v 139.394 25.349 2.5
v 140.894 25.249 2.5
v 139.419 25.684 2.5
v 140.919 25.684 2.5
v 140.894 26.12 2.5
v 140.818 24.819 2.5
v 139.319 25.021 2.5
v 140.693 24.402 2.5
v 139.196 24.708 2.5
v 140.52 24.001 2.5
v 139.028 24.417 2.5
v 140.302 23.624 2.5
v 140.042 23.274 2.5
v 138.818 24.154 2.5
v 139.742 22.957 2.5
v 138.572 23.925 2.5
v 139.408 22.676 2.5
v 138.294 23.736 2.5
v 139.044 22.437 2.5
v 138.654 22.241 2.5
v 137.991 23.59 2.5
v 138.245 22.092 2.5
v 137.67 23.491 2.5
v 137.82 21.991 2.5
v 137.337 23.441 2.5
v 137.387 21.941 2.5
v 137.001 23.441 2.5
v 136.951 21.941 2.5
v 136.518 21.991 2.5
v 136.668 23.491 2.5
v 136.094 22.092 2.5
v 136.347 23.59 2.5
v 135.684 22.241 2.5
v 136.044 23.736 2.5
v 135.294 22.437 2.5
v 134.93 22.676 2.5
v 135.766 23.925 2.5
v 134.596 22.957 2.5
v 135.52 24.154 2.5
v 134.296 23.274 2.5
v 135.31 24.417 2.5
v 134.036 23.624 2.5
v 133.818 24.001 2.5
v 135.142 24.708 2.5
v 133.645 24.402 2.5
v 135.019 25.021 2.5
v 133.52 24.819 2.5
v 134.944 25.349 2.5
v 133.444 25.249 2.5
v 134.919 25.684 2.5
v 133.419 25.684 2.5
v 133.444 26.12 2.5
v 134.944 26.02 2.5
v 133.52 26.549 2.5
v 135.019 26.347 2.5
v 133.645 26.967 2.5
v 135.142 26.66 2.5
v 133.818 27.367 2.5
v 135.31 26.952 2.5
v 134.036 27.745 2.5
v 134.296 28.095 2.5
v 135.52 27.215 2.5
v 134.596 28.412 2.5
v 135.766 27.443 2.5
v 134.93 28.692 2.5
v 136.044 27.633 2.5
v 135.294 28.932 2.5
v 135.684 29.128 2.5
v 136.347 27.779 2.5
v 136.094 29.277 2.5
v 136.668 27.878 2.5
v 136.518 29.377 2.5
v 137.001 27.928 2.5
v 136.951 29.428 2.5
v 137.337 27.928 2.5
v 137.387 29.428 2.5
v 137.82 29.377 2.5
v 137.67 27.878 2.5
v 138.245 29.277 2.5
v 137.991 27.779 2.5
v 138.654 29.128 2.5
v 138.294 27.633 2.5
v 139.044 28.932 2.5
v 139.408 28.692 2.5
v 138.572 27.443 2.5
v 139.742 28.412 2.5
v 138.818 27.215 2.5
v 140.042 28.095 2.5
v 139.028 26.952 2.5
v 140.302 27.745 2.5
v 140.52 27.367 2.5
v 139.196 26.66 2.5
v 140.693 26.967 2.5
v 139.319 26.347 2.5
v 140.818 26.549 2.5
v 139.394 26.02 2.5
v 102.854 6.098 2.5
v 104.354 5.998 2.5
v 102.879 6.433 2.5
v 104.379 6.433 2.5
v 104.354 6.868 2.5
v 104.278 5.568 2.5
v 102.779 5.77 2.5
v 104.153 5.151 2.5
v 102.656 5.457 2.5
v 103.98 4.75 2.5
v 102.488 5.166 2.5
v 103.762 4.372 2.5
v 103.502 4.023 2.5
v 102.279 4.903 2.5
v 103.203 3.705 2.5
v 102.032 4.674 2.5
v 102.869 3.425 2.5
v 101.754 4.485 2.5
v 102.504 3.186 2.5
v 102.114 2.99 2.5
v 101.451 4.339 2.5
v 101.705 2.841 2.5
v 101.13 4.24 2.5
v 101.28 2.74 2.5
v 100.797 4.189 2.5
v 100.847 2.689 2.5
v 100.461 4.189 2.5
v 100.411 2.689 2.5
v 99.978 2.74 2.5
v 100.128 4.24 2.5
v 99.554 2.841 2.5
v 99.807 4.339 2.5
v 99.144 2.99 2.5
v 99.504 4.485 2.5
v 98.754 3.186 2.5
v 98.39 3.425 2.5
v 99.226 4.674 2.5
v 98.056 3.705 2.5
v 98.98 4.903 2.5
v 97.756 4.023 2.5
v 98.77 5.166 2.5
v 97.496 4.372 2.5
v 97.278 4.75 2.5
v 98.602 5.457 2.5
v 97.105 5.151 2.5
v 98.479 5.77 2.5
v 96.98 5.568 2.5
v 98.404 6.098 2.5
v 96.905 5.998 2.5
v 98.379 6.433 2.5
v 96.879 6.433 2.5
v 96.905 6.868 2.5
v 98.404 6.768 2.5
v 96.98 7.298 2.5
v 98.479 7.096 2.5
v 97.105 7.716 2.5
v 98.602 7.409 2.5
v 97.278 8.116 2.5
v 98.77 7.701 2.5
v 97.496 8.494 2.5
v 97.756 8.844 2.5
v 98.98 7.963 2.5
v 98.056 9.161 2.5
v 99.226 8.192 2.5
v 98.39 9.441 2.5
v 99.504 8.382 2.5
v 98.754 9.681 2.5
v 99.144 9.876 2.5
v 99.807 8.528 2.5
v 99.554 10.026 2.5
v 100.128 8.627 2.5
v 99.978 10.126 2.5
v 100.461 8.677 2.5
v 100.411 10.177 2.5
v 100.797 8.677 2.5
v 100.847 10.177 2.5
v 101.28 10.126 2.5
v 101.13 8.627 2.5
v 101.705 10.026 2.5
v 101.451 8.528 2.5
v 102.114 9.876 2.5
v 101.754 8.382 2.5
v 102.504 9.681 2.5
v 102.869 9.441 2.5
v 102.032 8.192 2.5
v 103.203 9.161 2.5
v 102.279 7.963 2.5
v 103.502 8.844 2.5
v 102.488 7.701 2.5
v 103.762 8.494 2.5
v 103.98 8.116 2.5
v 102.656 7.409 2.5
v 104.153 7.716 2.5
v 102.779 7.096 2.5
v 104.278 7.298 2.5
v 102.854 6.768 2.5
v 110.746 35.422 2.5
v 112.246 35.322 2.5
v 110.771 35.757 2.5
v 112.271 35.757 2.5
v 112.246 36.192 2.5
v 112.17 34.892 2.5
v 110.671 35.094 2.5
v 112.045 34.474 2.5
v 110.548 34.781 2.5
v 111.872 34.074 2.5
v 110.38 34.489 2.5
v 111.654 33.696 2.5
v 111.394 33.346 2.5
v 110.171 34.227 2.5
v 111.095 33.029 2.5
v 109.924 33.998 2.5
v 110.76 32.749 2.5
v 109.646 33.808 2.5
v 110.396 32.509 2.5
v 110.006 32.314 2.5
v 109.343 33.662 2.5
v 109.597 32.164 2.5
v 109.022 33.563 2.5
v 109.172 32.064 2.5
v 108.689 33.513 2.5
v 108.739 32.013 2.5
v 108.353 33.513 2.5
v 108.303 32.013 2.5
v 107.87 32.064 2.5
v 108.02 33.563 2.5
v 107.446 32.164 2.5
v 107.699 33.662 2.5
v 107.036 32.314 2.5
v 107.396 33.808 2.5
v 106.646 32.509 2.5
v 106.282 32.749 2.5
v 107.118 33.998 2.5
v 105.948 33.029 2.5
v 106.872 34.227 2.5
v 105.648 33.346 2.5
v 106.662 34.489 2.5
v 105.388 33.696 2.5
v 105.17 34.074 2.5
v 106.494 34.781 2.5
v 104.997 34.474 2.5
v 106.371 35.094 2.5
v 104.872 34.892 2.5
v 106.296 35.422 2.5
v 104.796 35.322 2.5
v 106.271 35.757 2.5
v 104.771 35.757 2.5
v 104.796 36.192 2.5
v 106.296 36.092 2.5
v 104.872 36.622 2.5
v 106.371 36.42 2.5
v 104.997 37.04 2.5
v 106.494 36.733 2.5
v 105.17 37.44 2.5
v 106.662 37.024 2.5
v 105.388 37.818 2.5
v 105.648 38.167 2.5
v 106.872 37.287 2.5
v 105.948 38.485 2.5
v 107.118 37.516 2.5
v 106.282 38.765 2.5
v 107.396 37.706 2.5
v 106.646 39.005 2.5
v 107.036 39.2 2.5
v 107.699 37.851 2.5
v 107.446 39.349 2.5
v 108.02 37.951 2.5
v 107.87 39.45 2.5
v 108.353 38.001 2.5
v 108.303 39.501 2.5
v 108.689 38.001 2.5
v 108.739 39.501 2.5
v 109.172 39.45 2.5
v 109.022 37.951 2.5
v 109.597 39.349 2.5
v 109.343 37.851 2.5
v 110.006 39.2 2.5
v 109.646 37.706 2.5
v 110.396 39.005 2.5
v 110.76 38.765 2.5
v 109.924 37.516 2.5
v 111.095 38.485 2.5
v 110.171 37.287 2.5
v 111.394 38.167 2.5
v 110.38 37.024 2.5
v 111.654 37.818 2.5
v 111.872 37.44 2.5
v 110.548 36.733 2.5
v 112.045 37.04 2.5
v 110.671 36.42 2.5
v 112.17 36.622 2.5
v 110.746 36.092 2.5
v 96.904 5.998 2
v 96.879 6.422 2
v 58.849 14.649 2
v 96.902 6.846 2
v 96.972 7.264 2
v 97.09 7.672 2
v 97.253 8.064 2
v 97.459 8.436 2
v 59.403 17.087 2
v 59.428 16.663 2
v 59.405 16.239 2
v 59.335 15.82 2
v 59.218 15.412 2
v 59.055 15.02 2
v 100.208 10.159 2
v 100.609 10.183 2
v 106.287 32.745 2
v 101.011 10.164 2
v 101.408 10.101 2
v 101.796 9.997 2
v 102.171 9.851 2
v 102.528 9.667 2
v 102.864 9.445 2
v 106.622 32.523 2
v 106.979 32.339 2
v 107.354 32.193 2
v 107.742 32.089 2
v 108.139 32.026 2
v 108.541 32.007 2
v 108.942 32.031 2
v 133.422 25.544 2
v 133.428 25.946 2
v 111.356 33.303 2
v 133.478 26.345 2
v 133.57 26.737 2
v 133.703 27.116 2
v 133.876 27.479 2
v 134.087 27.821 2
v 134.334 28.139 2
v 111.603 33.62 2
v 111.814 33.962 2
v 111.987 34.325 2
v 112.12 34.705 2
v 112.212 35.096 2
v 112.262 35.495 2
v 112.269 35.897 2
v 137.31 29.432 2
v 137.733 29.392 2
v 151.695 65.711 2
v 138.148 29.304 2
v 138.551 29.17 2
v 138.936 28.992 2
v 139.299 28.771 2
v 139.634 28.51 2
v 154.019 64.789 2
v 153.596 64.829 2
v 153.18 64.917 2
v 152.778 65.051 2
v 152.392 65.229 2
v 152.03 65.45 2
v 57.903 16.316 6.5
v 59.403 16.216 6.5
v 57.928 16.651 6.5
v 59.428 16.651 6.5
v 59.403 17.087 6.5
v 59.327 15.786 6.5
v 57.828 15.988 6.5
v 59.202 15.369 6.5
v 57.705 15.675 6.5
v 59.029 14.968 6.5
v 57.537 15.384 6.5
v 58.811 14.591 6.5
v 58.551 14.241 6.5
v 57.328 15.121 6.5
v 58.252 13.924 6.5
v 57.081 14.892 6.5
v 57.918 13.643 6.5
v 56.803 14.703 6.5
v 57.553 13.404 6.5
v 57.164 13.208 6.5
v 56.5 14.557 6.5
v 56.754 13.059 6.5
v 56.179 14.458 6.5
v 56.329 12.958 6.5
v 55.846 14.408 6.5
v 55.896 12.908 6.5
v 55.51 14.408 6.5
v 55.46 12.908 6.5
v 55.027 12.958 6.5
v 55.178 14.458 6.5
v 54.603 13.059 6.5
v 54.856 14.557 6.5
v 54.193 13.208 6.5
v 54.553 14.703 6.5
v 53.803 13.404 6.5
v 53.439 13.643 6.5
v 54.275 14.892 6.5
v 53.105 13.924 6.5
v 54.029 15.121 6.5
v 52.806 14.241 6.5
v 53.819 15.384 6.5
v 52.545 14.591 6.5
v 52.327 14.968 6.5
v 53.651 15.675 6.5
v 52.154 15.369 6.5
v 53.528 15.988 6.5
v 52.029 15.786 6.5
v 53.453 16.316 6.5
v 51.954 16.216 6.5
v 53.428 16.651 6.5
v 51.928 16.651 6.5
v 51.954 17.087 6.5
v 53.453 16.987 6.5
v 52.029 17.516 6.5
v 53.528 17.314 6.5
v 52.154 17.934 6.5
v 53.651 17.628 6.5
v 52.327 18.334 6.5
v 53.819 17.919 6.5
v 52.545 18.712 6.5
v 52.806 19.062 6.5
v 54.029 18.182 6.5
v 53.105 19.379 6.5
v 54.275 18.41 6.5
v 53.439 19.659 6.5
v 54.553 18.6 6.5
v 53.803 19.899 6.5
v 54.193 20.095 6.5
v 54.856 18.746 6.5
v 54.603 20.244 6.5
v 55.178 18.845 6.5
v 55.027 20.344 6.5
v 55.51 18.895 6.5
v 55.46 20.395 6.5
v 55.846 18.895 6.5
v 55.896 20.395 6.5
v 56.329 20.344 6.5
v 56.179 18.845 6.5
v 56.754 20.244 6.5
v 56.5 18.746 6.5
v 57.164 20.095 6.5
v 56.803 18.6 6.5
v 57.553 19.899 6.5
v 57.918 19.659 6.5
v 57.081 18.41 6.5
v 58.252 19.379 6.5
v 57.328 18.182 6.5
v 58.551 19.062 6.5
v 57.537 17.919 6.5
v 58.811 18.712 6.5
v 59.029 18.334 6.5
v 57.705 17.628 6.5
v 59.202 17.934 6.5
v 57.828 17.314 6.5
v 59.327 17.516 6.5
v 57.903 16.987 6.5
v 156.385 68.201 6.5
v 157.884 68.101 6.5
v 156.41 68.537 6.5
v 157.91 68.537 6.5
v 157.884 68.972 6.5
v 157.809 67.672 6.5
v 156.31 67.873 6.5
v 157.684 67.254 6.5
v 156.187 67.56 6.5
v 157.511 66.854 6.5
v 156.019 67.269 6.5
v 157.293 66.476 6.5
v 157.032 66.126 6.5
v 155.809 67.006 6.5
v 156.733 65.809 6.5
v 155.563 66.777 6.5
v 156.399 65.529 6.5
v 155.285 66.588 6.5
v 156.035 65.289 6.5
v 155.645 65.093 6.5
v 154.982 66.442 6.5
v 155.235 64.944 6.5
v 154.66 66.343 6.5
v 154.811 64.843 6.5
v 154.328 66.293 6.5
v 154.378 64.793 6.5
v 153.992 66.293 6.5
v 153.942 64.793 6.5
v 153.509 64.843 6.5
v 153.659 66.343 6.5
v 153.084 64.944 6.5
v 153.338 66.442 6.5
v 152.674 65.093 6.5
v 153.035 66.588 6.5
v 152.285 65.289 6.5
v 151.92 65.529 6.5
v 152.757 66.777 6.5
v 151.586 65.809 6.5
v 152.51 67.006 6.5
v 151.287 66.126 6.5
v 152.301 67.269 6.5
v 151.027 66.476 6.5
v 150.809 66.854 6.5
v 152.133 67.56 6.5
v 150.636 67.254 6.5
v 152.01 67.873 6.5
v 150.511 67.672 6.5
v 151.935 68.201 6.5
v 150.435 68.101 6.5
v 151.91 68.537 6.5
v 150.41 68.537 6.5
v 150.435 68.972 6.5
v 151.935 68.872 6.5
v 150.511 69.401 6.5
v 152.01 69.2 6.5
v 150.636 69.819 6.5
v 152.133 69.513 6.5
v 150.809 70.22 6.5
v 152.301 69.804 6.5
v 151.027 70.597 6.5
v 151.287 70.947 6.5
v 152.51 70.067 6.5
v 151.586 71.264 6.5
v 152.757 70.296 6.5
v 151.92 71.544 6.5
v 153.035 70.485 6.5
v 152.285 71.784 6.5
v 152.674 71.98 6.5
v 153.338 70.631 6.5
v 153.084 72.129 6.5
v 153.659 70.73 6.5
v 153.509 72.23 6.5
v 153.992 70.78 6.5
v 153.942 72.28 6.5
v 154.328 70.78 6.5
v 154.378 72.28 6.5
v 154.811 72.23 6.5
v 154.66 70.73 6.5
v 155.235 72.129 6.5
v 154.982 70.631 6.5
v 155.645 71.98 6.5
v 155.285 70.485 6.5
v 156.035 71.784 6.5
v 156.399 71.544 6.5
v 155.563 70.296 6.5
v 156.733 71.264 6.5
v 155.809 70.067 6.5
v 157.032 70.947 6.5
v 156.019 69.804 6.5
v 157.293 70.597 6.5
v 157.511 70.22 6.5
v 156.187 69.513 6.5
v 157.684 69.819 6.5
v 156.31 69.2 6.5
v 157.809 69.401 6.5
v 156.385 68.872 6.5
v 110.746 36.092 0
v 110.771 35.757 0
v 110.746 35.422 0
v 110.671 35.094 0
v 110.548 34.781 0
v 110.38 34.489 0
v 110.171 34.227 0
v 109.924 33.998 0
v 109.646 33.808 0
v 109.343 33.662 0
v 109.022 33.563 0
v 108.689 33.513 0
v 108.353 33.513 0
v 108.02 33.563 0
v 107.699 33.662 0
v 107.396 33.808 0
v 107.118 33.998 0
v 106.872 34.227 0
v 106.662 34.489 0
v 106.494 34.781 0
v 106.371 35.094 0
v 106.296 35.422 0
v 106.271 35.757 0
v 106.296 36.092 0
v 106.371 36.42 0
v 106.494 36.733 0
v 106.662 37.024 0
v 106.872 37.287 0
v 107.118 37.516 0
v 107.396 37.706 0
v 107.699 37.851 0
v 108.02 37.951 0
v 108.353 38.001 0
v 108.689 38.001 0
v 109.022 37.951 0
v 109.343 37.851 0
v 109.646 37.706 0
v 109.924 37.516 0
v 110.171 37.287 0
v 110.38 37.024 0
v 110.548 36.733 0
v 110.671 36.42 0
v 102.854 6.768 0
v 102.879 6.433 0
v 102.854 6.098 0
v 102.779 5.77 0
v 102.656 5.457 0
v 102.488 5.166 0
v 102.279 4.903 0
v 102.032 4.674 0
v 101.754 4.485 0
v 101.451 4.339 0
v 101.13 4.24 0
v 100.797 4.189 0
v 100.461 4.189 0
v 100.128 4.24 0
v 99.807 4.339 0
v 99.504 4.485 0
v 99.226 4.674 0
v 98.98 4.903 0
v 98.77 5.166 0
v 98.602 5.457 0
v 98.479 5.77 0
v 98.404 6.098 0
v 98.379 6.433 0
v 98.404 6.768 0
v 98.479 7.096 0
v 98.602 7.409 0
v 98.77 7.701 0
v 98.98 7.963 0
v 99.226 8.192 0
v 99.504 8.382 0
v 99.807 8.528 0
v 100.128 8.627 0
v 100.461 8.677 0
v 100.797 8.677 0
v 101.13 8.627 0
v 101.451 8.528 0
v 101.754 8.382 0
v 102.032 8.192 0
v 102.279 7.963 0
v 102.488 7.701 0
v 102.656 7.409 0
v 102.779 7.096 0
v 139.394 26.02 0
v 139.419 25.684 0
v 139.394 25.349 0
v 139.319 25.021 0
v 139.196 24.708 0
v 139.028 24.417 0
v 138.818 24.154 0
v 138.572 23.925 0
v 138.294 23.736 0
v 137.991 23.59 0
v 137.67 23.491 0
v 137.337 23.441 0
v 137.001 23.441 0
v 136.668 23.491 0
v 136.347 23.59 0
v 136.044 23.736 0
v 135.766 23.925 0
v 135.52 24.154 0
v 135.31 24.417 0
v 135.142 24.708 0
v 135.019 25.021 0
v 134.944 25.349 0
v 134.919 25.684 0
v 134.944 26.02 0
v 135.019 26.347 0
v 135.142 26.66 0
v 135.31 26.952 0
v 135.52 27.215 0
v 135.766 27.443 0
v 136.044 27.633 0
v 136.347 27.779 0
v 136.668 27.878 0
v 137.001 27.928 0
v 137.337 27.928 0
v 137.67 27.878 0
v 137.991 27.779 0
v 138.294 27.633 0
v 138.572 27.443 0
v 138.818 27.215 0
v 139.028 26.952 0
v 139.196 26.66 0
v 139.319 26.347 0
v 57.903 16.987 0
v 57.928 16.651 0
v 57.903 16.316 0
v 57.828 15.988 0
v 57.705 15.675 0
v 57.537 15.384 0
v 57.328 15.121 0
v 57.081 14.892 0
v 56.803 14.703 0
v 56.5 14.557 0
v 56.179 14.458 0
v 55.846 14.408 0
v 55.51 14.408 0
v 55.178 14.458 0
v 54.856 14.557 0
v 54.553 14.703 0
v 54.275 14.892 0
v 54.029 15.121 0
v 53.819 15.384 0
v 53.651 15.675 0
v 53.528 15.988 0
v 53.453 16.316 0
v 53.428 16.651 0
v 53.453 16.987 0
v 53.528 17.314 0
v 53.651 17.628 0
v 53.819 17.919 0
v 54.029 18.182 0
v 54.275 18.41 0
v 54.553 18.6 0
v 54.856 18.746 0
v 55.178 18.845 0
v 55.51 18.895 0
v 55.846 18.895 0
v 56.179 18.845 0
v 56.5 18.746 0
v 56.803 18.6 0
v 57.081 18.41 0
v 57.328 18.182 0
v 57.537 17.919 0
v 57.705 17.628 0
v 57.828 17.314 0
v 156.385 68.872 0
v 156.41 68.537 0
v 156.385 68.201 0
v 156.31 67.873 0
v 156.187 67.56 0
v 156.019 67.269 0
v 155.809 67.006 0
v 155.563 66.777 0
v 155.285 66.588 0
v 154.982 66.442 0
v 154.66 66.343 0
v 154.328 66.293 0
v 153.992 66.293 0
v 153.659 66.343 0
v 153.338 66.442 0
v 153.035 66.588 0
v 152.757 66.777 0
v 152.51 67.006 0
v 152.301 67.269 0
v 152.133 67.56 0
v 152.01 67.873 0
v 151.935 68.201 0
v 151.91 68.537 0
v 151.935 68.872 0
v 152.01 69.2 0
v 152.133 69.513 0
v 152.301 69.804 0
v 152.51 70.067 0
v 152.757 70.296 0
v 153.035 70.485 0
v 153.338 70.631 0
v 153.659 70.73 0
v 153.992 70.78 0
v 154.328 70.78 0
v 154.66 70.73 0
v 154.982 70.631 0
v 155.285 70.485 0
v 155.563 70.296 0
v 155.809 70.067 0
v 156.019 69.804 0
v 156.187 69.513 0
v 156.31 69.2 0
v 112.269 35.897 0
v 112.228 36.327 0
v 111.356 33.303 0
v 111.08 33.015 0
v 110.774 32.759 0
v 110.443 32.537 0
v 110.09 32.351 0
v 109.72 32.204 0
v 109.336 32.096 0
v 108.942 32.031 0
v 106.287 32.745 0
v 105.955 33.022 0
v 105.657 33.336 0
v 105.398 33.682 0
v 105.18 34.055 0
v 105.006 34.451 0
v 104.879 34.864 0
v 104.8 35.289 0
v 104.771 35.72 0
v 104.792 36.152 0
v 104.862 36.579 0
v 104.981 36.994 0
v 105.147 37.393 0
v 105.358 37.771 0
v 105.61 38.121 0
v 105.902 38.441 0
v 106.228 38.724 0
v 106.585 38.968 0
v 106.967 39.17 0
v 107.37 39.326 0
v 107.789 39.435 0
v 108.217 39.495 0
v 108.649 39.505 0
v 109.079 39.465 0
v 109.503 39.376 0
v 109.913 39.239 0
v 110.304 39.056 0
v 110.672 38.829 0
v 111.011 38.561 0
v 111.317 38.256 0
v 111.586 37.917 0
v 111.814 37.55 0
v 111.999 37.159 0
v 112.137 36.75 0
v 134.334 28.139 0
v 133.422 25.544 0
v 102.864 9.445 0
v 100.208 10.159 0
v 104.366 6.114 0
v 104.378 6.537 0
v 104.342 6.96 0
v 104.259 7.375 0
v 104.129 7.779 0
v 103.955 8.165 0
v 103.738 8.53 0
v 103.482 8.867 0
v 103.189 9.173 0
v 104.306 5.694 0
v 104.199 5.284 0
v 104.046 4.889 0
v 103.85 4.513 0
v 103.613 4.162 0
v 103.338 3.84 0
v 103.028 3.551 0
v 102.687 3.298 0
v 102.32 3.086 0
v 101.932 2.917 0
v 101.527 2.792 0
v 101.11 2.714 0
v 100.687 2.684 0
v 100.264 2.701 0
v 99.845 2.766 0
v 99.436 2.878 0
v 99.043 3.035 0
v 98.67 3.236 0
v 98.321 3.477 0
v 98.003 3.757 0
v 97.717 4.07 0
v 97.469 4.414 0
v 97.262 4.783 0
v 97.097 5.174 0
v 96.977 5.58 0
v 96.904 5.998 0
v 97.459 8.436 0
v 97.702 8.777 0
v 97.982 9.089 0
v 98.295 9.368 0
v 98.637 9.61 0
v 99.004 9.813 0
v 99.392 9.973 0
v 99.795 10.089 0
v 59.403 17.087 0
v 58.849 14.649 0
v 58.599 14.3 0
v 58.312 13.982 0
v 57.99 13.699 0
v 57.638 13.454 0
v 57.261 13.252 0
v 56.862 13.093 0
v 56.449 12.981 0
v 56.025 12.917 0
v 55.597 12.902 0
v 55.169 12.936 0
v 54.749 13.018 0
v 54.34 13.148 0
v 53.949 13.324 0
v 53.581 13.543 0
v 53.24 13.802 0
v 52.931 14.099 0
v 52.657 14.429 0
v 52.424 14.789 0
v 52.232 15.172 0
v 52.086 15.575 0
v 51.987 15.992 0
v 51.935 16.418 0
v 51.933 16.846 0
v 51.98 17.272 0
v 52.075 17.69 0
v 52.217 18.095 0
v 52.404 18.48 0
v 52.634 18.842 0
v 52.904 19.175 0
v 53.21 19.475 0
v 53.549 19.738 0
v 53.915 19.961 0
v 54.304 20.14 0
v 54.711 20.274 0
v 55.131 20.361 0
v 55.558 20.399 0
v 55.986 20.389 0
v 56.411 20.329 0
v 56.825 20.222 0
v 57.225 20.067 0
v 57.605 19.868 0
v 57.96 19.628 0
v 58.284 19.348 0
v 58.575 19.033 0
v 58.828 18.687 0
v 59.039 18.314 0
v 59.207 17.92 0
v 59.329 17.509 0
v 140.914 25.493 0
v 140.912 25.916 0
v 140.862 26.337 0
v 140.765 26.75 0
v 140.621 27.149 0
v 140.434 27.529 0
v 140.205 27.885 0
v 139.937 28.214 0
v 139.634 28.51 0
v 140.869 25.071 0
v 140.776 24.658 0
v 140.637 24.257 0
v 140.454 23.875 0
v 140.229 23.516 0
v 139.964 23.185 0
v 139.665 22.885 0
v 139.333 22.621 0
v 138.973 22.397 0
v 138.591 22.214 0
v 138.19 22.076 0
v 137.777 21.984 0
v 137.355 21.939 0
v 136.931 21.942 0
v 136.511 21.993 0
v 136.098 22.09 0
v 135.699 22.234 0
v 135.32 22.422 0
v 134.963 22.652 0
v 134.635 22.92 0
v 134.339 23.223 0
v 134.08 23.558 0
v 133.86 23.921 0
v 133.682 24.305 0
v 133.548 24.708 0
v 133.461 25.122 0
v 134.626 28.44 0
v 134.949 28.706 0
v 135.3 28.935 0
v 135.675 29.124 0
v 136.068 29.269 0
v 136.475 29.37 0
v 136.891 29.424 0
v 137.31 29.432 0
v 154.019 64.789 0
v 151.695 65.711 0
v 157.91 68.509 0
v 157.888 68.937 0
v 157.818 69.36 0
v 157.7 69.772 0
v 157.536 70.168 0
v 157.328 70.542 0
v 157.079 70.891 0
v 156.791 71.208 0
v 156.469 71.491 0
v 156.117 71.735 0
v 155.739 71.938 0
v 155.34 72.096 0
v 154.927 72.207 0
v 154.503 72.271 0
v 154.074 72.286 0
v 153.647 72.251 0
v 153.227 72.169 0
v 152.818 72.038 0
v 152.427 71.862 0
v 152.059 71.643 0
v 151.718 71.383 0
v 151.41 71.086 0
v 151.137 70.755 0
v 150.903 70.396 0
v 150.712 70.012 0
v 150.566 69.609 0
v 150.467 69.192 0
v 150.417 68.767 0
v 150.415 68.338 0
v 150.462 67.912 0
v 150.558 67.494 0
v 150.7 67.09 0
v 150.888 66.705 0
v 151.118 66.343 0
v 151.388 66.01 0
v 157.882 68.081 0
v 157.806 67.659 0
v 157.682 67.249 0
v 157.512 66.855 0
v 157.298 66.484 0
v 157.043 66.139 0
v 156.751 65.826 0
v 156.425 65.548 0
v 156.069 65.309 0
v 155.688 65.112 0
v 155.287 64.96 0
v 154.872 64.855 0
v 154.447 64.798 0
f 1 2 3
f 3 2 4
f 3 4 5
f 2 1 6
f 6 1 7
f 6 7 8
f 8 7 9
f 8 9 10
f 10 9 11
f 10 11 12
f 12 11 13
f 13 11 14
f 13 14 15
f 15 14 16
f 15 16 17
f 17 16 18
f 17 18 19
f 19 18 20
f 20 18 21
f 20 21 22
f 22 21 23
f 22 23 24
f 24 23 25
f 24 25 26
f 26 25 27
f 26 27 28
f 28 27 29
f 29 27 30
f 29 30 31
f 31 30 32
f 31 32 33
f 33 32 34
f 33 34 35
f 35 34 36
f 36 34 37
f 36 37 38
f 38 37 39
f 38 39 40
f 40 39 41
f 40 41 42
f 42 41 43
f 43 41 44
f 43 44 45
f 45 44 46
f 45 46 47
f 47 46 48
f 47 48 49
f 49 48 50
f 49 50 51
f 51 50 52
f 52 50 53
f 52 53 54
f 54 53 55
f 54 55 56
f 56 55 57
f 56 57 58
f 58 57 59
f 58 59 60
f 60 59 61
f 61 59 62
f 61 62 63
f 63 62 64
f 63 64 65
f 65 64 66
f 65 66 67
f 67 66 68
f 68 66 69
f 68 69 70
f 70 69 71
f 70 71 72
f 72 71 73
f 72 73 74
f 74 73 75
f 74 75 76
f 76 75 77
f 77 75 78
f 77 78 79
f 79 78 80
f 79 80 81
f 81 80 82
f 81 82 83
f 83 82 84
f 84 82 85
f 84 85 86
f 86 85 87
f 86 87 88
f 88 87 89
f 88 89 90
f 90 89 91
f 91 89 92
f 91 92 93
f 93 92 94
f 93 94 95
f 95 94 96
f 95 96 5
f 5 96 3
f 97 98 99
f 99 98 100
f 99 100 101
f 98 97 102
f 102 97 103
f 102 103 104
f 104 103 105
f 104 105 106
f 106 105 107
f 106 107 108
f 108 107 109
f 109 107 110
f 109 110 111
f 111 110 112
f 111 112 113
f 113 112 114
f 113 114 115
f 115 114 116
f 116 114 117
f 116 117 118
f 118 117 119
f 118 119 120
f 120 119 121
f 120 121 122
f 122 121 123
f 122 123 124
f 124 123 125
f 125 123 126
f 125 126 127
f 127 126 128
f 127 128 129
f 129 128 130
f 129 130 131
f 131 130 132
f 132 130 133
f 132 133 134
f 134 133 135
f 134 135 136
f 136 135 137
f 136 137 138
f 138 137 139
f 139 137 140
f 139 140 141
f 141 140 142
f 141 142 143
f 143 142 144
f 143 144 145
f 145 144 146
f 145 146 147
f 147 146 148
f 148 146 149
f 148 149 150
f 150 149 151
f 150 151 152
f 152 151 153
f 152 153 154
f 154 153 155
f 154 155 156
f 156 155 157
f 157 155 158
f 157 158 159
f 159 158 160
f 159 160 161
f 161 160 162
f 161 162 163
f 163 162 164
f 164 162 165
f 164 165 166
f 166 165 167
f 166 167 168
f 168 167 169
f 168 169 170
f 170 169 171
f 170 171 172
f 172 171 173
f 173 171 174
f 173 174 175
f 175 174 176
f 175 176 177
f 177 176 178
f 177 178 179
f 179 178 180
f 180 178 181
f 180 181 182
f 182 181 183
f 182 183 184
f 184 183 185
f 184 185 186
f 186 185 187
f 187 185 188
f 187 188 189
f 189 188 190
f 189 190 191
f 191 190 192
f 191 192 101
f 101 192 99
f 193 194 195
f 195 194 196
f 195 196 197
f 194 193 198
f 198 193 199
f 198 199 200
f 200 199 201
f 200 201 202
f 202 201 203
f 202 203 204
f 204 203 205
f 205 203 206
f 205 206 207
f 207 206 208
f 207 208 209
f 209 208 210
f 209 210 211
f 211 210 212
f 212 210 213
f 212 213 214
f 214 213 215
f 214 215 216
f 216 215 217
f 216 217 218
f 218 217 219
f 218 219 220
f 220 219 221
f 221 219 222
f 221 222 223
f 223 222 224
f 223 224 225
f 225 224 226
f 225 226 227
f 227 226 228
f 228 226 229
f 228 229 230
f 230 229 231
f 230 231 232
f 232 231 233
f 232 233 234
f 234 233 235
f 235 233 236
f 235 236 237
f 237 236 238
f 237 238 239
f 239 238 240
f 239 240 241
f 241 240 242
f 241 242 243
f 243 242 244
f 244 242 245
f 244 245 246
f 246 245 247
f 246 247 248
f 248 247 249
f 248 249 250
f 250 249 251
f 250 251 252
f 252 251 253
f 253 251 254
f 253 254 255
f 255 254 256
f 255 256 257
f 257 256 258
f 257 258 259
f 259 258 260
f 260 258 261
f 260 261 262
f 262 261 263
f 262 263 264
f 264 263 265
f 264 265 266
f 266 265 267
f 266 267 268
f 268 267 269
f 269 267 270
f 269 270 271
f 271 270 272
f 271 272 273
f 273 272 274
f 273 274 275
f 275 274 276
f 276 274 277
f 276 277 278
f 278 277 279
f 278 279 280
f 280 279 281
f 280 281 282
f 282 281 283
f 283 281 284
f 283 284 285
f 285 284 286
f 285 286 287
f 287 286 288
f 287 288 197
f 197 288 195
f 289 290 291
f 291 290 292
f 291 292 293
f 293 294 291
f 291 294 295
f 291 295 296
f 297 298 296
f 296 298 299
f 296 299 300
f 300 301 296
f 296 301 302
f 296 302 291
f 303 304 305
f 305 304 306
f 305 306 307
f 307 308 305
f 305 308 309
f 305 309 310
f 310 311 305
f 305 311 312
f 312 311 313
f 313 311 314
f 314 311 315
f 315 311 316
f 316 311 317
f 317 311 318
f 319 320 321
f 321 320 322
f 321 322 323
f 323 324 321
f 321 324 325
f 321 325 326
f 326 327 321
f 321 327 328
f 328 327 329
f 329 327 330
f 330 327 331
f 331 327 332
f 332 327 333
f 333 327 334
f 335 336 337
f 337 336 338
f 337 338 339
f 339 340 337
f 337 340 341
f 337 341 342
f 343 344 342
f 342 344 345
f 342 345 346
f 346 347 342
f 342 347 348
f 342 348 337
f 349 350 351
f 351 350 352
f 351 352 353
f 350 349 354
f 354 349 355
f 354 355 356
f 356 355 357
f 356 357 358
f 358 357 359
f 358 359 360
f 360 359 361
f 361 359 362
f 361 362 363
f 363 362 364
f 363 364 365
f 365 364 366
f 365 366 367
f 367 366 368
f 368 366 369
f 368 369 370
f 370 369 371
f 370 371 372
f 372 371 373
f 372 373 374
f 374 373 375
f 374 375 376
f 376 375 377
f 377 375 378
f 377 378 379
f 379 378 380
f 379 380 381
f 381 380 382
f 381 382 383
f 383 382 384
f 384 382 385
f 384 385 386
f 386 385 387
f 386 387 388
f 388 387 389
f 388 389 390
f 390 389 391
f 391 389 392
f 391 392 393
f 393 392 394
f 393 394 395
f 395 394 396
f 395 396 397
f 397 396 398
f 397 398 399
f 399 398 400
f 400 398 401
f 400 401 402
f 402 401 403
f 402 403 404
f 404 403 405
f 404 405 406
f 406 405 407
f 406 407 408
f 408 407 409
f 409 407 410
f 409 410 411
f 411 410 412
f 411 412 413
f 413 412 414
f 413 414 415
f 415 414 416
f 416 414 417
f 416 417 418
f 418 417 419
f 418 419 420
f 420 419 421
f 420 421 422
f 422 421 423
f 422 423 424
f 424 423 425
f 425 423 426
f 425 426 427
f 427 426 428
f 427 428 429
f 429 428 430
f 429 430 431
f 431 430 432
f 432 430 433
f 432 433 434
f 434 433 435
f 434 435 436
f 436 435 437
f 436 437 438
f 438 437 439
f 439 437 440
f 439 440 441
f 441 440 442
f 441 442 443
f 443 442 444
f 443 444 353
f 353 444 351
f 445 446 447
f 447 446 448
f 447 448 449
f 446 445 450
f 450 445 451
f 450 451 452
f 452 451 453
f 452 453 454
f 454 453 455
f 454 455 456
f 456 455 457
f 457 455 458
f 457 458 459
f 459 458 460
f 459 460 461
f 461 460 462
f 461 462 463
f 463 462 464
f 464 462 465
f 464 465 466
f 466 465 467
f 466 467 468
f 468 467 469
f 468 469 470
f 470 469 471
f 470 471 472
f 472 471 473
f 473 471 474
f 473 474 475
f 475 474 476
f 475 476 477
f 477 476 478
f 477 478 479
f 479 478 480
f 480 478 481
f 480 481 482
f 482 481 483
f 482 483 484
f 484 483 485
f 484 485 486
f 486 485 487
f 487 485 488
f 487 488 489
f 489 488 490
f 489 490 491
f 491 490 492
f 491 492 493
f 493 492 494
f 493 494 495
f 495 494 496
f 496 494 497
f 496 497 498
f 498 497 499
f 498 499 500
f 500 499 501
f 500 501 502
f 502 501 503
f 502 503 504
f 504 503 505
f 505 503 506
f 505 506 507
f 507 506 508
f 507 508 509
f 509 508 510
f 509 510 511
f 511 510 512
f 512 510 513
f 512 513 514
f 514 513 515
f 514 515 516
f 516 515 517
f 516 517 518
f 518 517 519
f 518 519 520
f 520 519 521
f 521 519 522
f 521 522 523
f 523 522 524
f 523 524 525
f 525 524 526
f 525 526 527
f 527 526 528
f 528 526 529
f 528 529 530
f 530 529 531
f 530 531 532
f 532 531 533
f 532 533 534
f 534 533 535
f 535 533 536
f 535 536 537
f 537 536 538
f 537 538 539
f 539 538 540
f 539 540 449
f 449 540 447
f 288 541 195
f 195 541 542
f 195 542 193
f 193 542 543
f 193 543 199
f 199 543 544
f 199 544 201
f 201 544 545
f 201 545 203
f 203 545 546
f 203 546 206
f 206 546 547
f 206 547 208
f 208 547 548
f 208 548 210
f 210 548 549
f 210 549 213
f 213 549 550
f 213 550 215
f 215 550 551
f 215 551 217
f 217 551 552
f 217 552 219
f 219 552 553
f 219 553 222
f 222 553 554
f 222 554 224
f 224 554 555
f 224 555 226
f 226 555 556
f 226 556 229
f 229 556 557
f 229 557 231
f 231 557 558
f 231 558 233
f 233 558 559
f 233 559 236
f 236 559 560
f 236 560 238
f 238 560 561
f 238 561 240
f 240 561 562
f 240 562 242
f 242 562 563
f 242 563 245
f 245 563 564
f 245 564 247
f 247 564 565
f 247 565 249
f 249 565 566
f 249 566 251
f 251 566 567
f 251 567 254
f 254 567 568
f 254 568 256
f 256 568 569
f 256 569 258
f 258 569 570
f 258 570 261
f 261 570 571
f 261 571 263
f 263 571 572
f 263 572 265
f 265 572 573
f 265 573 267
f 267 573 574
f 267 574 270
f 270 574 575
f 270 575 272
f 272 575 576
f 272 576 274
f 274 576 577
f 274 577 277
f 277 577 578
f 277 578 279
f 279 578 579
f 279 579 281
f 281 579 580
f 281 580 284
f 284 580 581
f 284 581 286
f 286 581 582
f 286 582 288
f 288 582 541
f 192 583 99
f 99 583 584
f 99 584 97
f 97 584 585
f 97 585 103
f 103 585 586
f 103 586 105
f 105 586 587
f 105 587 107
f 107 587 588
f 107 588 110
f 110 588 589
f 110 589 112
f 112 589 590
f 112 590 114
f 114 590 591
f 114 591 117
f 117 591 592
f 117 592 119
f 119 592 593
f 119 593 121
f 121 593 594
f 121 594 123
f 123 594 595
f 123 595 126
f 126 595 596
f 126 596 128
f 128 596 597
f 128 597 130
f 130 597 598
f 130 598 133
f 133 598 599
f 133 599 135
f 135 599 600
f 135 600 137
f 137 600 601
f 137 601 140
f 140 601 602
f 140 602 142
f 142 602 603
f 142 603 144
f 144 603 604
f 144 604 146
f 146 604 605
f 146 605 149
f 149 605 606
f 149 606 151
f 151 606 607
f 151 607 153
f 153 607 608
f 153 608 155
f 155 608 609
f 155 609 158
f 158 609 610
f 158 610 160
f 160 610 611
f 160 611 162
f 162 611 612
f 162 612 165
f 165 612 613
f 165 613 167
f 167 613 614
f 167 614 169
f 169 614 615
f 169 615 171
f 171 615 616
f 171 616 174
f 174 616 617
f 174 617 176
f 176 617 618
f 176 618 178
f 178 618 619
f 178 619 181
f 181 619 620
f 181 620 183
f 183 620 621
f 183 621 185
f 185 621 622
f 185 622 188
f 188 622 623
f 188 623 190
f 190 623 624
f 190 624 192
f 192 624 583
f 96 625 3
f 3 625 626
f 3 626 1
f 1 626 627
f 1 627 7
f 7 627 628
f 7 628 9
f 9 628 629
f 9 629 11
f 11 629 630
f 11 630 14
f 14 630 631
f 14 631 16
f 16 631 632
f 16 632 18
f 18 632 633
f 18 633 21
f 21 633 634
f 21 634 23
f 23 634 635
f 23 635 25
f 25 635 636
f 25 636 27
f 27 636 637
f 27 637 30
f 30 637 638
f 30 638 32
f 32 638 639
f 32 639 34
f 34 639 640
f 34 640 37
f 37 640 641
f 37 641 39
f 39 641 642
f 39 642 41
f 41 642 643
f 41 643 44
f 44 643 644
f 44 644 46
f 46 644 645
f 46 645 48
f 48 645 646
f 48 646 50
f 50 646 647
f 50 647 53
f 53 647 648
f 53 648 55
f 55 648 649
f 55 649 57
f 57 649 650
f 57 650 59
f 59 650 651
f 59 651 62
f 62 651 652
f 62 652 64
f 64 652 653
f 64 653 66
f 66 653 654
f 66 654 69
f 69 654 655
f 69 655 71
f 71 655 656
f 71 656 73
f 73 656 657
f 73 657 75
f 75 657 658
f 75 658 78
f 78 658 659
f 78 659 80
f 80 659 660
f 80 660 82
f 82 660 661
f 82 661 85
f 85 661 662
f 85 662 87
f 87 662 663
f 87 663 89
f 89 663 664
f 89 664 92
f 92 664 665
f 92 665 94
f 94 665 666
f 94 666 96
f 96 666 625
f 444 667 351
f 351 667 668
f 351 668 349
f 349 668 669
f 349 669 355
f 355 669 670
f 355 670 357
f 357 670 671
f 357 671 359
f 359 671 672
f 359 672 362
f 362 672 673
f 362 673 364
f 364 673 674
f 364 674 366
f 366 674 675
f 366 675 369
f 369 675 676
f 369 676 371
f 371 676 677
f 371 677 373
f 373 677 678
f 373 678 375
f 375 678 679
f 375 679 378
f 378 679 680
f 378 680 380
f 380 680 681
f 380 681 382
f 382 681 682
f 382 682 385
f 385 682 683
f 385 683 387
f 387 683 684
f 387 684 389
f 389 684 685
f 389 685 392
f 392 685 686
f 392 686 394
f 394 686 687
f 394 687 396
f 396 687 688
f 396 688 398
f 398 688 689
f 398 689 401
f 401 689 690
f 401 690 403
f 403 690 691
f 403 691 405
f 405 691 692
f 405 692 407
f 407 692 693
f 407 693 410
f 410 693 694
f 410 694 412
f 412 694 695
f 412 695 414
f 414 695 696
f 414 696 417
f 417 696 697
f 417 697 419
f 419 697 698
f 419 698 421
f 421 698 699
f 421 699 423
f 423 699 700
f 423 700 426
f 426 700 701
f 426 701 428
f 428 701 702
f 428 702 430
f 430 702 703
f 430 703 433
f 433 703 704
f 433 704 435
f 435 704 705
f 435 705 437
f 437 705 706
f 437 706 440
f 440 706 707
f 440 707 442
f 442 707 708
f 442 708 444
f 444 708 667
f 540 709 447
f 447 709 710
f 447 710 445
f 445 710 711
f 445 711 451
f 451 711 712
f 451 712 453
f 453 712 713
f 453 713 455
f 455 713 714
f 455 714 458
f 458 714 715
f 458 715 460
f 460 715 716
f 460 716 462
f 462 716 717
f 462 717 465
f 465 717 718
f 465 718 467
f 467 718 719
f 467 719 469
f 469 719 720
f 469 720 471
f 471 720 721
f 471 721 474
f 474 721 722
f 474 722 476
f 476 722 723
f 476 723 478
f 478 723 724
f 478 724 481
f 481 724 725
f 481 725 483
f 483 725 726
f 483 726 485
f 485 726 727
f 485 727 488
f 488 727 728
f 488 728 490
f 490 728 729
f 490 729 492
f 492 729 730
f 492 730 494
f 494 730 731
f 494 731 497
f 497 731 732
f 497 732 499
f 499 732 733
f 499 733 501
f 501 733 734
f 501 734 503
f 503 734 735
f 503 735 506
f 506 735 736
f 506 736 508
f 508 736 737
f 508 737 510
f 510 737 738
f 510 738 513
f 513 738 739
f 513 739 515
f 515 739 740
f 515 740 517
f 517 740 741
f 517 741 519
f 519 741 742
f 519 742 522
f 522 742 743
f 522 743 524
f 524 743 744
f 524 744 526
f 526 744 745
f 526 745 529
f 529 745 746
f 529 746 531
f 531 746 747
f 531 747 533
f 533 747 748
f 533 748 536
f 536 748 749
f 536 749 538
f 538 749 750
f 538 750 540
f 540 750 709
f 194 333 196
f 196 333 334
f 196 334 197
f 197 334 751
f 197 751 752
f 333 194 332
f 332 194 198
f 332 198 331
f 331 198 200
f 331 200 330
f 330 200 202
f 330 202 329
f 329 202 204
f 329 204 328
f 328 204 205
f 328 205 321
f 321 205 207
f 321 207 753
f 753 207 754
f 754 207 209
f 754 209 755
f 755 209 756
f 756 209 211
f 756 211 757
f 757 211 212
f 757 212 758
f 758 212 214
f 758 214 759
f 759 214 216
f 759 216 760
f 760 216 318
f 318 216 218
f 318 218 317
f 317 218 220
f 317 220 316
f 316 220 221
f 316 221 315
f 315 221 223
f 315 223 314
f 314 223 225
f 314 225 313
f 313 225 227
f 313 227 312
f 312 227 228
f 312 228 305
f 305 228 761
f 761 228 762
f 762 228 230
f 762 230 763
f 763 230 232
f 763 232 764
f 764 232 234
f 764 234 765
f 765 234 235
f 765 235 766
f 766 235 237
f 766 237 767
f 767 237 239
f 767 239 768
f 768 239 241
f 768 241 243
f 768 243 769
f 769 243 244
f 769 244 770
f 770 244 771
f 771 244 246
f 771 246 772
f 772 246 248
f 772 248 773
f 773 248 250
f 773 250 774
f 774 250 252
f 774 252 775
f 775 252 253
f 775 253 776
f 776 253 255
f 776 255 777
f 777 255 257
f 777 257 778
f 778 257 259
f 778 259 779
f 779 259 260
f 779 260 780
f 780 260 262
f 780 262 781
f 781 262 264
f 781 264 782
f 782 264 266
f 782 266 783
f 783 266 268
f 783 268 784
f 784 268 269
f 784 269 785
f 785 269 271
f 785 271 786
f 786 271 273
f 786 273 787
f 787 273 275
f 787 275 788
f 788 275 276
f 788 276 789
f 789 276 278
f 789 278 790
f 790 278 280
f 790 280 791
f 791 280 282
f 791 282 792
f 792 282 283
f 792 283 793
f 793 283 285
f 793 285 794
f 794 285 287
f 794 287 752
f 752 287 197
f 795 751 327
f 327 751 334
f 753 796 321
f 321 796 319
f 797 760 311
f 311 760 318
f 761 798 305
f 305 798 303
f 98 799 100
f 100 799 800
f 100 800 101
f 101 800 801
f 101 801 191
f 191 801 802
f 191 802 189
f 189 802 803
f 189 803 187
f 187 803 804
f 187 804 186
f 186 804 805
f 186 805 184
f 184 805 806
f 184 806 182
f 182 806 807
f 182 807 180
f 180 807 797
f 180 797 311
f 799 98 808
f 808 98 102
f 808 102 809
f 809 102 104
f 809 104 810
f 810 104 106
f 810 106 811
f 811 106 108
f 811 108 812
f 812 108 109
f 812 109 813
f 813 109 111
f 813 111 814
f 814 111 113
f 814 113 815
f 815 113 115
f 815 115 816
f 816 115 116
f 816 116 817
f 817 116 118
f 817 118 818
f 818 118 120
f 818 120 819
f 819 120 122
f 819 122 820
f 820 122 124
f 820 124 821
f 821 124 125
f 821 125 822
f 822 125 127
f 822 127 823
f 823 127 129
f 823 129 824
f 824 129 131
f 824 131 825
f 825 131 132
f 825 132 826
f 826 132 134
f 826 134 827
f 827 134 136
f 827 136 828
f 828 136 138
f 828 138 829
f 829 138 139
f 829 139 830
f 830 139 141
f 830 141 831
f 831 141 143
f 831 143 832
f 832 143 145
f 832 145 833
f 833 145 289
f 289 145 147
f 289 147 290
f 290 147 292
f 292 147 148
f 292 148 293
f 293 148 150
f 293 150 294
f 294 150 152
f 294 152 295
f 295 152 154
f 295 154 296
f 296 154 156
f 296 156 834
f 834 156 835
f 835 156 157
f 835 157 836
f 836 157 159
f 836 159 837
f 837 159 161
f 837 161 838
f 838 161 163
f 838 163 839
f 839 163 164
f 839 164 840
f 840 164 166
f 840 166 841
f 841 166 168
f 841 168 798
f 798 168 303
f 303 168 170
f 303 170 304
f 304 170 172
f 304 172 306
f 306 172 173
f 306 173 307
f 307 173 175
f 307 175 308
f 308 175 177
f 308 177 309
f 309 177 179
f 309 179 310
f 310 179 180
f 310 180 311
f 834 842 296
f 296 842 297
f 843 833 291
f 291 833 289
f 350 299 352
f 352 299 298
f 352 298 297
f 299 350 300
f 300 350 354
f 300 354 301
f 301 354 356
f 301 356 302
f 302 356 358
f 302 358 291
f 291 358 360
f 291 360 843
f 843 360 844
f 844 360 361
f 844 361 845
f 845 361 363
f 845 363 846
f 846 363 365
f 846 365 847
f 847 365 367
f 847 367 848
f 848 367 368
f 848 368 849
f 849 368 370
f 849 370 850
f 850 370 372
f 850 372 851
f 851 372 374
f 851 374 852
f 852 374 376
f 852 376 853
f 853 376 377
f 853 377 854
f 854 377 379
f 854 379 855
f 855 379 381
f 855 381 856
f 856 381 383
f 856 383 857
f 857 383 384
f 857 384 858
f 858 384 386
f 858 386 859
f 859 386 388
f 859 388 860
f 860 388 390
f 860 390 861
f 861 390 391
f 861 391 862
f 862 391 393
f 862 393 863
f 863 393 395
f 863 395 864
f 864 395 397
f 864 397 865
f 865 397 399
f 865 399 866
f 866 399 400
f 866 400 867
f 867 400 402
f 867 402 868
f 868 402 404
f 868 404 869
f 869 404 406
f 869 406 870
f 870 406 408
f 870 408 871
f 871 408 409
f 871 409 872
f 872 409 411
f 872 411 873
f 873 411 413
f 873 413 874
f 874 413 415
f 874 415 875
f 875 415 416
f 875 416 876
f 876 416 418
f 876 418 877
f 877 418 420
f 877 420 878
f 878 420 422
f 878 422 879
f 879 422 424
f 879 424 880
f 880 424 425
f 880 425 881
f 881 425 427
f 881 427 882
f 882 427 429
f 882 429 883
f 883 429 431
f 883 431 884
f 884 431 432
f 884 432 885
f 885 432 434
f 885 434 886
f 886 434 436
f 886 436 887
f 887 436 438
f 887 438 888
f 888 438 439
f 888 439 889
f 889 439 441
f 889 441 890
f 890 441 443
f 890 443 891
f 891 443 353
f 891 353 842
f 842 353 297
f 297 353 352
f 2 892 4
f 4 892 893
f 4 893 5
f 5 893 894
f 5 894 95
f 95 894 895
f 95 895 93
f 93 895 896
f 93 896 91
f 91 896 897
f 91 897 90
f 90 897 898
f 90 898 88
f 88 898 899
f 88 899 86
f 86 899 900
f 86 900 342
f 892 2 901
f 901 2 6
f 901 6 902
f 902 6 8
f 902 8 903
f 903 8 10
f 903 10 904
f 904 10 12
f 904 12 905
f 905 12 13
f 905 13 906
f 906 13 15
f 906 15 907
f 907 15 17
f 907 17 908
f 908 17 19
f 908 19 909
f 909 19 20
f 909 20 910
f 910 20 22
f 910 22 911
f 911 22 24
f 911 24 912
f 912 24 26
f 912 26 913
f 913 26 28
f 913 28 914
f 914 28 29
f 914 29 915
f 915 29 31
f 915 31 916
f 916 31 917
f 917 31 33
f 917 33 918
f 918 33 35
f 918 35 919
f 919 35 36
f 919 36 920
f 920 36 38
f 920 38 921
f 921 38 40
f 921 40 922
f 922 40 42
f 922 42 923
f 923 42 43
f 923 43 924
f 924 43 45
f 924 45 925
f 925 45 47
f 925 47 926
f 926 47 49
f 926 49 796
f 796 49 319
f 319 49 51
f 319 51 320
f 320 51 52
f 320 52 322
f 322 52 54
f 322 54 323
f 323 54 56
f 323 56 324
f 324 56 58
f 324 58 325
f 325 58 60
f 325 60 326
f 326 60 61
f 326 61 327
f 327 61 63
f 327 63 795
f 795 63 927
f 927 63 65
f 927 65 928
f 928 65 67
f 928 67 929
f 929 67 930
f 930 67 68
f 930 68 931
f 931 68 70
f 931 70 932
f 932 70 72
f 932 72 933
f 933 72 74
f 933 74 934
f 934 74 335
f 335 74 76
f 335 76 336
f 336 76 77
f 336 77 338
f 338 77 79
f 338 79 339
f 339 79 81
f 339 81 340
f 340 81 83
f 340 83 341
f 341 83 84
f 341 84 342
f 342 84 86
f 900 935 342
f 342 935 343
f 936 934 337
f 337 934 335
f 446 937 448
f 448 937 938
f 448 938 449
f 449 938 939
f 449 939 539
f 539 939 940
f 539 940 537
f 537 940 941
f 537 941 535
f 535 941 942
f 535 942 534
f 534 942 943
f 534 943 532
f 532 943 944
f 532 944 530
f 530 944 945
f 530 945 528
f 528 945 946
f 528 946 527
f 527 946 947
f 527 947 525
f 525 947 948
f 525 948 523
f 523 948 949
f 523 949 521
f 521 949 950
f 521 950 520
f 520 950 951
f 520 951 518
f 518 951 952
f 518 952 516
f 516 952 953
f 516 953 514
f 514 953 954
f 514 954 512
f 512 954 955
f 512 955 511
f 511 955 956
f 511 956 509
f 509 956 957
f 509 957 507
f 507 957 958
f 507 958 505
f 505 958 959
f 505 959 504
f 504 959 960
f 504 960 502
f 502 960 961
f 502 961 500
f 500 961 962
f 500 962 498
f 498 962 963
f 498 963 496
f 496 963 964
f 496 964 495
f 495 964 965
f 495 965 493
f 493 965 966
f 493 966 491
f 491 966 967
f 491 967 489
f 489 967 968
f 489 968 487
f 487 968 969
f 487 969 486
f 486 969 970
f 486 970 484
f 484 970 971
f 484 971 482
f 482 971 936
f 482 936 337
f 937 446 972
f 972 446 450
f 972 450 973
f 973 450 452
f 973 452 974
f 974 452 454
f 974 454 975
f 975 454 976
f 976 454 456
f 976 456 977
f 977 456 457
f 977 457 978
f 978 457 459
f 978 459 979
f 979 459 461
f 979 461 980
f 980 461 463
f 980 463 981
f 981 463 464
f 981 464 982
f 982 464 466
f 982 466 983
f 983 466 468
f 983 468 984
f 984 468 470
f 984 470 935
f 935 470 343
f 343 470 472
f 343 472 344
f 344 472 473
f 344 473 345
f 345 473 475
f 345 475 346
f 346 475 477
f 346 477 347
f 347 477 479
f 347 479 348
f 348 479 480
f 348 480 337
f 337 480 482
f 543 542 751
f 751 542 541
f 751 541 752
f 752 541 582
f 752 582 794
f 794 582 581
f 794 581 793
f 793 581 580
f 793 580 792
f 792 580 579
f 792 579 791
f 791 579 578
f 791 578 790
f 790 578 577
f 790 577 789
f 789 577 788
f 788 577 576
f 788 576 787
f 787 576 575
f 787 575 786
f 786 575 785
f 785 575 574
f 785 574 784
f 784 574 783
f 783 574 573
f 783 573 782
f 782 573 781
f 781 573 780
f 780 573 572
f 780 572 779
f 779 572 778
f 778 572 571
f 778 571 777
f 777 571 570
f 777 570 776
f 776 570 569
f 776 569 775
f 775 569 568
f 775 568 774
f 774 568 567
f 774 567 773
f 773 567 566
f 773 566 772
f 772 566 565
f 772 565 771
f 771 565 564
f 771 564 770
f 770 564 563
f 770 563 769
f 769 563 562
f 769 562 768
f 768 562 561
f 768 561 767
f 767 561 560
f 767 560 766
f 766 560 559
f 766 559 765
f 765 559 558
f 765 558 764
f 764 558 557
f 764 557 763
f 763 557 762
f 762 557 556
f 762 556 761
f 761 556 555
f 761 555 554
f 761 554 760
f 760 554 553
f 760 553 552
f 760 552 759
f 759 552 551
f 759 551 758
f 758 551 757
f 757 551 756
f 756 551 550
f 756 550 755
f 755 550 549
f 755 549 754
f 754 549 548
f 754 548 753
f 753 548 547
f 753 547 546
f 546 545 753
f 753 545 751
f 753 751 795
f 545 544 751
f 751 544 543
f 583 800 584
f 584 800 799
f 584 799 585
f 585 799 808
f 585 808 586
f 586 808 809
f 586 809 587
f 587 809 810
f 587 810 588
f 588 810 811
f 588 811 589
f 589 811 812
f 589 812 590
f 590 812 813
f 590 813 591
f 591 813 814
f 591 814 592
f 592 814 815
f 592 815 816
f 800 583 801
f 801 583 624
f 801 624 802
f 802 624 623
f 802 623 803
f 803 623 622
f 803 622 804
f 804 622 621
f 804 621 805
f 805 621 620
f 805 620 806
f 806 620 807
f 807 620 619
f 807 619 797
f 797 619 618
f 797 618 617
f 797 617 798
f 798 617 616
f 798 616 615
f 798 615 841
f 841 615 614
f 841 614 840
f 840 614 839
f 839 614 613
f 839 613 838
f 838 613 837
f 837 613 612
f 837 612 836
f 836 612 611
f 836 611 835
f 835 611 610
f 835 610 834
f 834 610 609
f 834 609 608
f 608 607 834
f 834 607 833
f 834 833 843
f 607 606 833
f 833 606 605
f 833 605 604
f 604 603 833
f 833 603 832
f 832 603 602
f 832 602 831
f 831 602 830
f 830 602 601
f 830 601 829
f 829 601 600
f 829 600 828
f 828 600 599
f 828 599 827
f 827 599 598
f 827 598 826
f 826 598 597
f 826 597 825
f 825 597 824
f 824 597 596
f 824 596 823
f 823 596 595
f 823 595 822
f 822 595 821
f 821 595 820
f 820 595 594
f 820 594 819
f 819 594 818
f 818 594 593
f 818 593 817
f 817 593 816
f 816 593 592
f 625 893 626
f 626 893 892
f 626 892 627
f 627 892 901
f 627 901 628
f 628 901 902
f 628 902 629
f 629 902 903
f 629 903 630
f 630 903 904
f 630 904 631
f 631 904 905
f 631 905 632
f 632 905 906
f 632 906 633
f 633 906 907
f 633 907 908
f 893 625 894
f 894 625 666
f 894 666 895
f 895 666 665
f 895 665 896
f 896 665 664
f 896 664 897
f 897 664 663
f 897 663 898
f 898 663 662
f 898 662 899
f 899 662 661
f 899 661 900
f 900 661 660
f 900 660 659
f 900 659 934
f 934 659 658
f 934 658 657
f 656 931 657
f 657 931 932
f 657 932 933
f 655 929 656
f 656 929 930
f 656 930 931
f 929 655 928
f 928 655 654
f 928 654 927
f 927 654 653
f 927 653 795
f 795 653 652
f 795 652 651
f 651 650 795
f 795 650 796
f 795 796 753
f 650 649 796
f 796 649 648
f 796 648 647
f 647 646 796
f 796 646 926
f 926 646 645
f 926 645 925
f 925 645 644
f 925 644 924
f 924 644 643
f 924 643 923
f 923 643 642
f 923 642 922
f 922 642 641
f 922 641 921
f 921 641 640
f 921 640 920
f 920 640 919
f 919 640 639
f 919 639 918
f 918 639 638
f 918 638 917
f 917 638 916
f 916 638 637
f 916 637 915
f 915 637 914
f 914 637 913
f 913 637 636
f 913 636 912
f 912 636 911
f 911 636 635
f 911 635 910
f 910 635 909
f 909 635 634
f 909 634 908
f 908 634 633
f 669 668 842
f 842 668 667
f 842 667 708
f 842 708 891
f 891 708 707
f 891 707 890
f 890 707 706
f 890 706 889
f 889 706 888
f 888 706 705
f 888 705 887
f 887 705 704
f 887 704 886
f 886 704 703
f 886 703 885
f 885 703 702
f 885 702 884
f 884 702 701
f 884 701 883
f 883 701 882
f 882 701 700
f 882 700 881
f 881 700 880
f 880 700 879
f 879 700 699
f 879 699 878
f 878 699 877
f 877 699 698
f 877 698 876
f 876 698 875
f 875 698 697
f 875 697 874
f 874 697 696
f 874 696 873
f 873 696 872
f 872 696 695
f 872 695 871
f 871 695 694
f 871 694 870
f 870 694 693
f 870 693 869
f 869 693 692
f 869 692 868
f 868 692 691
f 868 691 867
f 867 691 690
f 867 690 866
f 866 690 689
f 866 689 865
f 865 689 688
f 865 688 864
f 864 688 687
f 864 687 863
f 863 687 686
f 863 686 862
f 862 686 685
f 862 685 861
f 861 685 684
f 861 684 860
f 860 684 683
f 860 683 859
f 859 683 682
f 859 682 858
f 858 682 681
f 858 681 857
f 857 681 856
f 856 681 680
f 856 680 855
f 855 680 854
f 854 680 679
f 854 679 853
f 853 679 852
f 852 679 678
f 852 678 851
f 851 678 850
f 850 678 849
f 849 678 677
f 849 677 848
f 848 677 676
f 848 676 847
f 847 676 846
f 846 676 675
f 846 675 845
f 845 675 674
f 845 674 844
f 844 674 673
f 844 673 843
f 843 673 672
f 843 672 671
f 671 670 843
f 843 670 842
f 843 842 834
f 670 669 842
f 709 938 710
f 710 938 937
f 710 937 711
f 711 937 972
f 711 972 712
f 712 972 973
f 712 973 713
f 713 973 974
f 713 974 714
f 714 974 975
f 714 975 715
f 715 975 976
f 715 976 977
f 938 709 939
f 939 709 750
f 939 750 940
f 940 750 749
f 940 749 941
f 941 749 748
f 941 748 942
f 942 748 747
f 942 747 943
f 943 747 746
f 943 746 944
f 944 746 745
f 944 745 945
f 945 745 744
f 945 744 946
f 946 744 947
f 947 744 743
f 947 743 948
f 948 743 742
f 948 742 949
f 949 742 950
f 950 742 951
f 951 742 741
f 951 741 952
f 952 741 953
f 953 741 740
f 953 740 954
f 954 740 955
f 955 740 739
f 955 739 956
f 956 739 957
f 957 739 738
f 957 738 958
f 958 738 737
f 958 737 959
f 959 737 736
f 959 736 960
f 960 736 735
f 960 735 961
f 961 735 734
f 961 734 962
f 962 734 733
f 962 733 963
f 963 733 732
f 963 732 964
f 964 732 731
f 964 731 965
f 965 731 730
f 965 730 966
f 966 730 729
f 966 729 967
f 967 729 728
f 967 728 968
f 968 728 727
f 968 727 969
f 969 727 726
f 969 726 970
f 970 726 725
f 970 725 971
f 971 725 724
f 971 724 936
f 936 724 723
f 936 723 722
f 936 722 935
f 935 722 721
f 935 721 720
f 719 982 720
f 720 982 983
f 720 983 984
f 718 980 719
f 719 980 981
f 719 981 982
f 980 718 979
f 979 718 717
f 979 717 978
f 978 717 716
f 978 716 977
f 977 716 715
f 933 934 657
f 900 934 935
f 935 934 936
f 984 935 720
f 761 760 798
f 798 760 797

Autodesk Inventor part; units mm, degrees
ref_plane "YZ Plane" through (0, 0, 0) normal (1, 0, 0) x (0, 1, 0)
ref_plane "XZ Plane" through (0, 0, 0) normal (0, 1, 0) x (-1, 0, 0)
ref_plane "XY Plane" through (0, 0, 0) normal (0, 0, 1) x (1, 0, 0)
sketch "Sketch1" plane through (0, 0, 0) normal (0, 0, 1) x (1, 0, 0)
  line L0 (125.272, 1.0352) -> (94.9914, -14.9276) projected
  arc A0 (97.3229, -19.3507) -> (94.9914, -14.9276) centre (89.9019, -20.4364) ccw projected
  line L1 (97.3229, -19.3507) -> (127.6037, -3.3892) projected
  line L2 (157.89, 12.5592) -> (127.6037, -3.3892) projected
  arc A1 (155.5603, 16.9833) -> (157.89, 12.5592) centre (162.9818, 18.0659) ccw projected
  line L3 (125.272, 1.0352) -> (155.5603, 16.9833) projected
  circle A2 centre (162.9818, 18.0659) radius 4.5 projected
  circle A3 centre (162.9818, 18.0659) radius 7.5 projected
  arc A4 (192.0328, 98.1186) -> (196.6808, 96.2757) centre (196.9631, 103.7704) ccw projected
  line L4 (163.264, 25.5606) -> (192.0328, 98.1186) projected
  arc A5 (167.912, 23.7177) -> (163.264, 25.5606) centre (162.9818, 18.0659) ccw projected
  line L5 (196.6808, 96.2757) -> (167.912, 23.7177) projected
  circle A6 centre (196.9631, 103.7704) radius 4.5 projected
  circle A7 centre (196.9631, 103.7704) radius 7.5 projected
  circle A8 centre (89.9019, -20.4364) radius 4.5 projected
  circle A9 centre (89.9019, -20.4364) radius 7.5 projected
  arc A10 (6.341, -4.0052) -> (7.4493, 0.8704) centre (0, 0) ccw projected
  line L6 (6.341, -4.0052) -> (82.4526, -21.3068) projected
  arc A11 (83.5609, -16.4312) -> (82.4526, -21.3068) centre (89.9019, -20.4364) ccw projected
  line L7 (83.5609, -16.4312) -> (7.4493, 0.8704) projected
  circle A12 centre (0, 0) radius 4.5 projected
  circle A13 centre (0, 0) radius 7.5 projected
  circle A14 centre (105.6859, 38.2113) radius 3.464 construction
  circle A15 centre (101.9441, 45.313) radius 4.5 construction
  arc A16 (109.4545, 45.313) -> (97.6972, 39.1186) centre (101.9441, 45.313) ccw construction
  circle A17 centre (105.6859, 38.2113) radius 4.5
  line L8 (111.3563, 33.3025) -> (155.487, 17.786)
  arc A18 (106.528, 30.7587) -> (111.3563, 33.3025) centre (105.6859, 38.2113) ccw
  arc A19 (113.1807, 38.4912) -> (101.217, 32.1881) centre (105.6859, 38.2113) ccw
  line L9 (157.3113, 22.9747) -> (113.1807, 38.4912)
  line L10 (163.0842, 20.9449) -> (163.0574, 20.9543)
  line L11 (101.217, 32.1881) -> (89.0598, -12.9838)
  line L12 (94.3708, -14.4132) -> (106.528, 30.7587)
  point P0 (0, 0)
  point P1 (97.7939, 8.8875)
  point P2 (134.3338, 28.1386)
  dimension "d0" = 9
  dimension "d2" = 7.5104
  dimension "d5" = 0.002
extrude "Extrusion1" add sketch "Sketch1" along normal blind 4 contours A0 A9 | A3 A1 | A9 L11 A19 L9 A3 L8 A18 L12 | L6 A10 L7 A9 | A3 L4 A4 L5 | A13 A10 | A4 A7
sketch "Sketch2" plane through (0, 0, 4) normal (0, 0, 1) x (1, 0, 0)
  circle A0 centre (0, 0) radius 4.5
  circle A1 centre (0, 0) radius 7.5
  circle A2 centre (196.9631, 103.7704) radius 4.5 projected
  circle A3 centre (196.9631, 103.7704) radius 4.5
  circle A4 centre (196.9631, 103.7704) radius 7.5
extrude "Extrusion2" add sketch "Sketch2" along normal blind 9
sketch "Sketch3" plane through (0, 0, 4) normal (0, 0, 1) x (1, 0, 0)
  circle A0 centre (89.9019, -20.4364) radius 4.5 projected
  circle A1 centre (89.9019, -20.4364) radius 4.5
  circle A2 centre (89.9019, -20.4364) radius 7.5
  circle A3 centre (105.6859, 38.2113) radius 4.5 projected
  circle A4 centre (105.6859, 38.2113) radius 4.5
  circle A5 centre (105.6859, 38.2113) radius 7.5
  circle A6 centre (162.9818, 18.0659) radius 4.5 projected
  circle A7 centre (162.9818, 18.0659) radius 4.5
  circle A8 centre (162.9818, 18.0659) radius 7.5
  point P0 (0, 0)
extrude "Extrusion3" add sketch "Sketch3" along normal blind 1
scale "Scale1" factors (0.5, 0.5, 0.5) then translate (55.6782, 16.6513, 0) bodies 1
properties part number "MassiveGearHOlder"
